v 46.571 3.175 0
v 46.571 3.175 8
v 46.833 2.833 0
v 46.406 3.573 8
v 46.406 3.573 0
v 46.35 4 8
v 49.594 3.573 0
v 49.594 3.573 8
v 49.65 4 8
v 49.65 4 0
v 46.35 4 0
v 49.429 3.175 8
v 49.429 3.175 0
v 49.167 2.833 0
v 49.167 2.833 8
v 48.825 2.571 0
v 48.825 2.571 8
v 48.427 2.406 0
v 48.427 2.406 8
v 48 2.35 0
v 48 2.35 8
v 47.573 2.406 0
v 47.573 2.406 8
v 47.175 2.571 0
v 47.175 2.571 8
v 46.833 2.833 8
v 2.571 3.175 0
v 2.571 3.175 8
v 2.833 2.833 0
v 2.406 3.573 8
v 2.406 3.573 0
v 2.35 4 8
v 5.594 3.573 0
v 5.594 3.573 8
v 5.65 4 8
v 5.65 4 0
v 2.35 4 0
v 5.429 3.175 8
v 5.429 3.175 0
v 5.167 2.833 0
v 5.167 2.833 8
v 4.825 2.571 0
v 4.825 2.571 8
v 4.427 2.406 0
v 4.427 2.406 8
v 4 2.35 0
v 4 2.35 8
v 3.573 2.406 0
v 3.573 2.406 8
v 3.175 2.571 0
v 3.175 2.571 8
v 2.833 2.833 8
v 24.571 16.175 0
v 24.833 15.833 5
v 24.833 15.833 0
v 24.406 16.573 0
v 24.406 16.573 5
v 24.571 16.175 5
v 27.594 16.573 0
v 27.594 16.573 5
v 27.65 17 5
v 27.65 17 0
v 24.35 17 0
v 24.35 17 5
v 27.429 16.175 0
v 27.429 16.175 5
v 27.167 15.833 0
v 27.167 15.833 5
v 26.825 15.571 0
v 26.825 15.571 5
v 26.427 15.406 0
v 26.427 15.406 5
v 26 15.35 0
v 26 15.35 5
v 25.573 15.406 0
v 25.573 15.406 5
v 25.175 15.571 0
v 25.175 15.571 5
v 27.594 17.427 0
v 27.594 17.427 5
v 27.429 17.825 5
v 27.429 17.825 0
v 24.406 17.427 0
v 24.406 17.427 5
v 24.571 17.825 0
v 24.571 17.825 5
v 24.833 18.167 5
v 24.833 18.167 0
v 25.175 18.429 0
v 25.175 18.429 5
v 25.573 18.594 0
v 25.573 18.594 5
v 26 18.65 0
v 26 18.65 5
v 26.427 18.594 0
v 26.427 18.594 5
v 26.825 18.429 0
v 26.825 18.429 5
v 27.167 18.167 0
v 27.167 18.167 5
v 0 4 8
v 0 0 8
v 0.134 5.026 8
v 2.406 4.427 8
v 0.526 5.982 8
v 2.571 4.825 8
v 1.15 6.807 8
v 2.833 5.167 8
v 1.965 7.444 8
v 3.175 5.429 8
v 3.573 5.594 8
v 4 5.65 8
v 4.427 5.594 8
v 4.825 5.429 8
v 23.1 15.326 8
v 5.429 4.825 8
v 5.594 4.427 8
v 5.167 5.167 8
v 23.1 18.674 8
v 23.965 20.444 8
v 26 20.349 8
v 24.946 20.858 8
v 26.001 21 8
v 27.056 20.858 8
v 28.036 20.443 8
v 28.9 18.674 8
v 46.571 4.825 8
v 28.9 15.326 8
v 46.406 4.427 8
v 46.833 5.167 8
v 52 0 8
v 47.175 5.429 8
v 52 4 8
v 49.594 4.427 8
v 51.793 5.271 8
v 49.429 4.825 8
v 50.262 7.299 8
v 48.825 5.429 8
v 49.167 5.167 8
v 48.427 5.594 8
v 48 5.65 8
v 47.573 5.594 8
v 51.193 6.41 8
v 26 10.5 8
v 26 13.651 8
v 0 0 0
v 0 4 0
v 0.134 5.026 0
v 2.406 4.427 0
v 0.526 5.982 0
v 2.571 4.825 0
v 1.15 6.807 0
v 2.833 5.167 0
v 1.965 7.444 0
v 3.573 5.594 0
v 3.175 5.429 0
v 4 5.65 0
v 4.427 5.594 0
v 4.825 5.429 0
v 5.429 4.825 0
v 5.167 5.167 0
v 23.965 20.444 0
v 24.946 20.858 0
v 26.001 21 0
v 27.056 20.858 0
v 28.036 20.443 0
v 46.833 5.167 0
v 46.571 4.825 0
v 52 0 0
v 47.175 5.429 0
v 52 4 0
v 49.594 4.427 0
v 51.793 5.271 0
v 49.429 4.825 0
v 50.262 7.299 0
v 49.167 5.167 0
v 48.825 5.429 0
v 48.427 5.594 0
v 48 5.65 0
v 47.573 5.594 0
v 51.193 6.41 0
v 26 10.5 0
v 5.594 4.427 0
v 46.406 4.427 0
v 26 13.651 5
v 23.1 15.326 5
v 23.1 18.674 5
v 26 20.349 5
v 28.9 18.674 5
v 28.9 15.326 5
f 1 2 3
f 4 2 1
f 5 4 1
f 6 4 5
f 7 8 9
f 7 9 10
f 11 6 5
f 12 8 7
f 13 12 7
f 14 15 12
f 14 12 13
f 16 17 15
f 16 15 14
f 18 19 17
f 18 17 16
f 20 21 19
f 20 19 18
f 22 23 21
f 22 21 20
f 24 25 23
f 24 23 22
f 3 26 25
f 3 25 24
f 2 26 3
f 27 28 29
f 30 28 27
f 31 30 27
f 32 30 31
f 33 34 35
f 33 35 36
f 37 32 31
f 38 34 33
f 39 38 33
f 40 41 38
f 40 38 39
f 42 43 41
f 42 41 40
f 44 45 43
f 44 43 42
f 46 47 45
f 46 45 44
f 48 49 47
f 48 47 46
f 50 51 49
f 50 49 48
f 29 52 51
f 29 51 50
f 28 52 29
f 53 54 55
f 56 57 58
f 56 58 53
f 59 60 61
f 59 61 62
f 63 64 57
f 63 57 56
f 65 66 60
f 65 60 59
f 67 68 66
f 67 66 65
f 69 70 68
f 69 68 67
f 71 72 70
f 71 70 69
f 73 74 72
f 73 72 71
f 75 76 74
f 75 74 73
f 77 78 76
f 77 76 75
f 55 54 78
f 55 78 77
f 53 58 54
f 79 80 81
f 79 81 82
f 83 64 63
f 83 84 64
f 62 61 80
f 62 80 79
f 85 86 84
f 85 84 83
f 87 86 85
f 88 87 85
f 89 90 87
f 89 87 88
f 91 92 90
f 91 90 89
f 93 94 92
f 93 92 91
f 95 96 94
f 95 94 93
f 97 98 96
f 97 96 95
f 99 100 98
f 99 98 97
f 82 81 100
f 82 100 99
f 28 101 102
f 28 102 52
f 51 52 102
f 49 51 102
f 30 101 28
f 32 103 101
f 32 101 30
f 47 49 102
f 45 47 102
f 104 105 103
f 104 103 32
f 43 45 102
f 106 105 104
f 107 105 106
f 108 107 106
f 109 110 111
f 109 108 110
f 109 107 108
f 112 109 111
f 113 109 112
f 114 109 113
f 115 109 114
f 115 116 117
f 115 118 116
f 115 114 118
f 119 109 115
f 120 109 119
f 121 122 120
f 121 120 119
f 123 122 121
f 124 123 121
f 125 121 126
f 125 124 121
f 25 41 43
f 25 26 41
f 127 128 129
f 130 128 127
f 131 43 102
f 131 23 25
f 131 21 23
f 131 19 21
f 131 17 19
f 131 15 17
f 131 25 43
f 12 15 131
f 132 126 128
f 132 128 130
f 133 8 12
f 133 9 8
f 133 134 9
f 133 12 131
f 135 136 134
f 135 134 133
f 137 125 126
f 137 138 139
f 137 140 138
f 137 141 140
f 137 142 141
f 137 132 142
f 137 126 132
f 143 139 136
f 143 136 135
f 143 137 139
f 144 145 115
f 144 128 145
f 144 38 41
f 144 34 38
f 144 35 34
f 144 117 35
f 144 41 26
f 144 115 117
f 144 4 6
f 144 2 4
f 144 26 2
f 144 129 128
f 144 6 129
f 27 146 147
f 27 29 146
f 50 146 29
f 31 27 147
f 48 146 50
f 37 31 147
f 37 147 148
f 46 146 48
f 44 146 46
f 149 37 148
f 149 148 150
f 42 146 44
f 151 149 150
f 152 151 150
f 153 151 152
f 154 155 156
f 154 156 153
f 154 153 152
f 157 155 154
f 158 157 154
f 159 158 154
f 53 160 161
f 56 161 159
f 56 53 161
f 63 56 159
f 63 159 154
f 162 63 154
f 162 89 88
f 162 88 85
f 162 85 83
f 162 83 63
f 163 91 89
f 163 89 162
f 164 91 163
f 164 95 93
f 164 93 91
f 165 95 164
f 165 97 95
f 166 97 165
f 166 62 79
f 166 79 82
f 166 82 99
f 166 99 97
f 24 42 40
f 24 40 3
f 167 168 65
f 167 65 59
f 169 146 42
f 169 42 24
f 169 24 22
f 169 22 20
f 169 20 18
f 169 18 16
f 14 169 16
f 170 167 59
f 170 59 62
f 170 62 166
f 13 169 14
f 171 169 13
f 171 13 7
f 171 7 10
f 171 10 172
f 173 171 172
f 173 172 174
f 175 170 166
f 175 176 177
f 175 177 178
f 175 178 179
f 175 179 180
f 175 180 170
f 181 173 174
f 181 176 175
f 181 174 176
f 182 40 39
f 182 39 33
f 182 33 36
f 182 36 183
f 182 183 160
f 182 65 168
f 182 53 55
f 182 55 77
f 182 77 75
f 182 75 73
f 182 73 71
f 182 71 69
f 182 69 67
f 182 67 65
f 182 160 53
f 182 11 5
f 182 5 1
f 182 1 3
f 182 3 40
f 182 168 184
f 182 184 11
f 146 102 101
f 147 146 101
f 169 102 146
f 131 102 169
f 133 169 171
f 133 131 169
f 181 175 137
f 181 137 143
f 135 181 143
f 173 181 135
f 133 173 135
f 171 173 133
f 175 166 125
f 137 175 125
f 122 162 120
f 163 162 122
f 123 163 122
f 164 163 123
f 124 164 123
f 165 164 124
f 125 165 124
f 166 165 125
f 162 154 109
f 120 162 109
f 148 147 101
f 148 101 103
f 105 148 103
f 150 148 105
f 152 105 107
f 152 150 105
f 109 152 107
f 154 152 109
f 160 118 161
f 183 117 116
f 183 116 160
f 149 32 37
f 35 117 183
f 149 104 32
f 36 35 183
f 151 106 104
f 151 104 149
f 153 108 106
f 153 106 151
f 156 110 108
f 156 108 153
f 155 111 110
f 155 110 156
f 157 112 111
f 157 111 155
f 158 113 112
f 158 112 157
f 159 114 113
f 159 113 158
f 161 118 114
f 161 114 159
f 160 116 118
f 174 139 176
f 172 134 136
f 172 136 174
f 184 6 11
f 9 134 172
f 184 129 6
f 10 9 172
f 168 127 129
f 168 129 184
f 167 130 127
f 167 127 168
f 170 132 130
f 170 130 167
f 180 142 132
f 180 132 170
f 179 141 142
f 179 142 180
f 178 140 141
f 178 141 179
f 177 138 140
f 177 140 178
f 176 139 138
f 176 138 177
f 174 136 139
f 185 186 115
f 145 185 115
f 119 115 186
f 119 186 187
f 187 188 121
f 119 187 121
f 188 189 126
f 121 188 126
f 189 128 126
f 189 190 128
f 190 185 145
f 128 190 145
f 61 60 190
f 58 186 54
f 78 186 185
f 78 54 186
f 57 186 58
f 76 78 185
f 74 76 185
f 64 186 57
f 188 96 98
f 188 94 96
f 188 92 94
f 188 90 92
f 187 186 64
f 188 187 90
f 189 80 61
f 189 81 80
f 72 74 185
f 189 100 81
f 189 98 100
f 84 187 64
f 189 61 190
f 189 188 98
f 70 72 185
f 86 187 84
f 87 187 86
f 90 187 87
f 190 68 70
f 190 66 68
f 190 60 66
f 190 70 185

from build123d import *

# Parameters (mm, degrees)
SKETCH1_R           = 1.65
BOSS_EXTRUDE1_DEPTH = 8
CUT_EXTRUDE1_DEPTH  = 3


with BuildPart() as part:
    # Sketch1 → Boss-Extrude1 (new body)
    with BuildSketch(Plane.XY):
        with BuildLine():
            Line((0, 0), (52, 0))
            Line((52, 0), (52, 4))
            ThreePointArc((52, 4), (51.538809184, 5.864625849), (50.261585222, 7.29927754))
            Line((50.261585222, 7.29927754), (28.036121371, 20.442994302))
            ThreePointArc((28.036121371, 20.442994302), (26.00069939, 20.999999939), (23.965082751, 20.443706113))
            Line((23.965082751, 20.443706113), (1.965082751, 7.443706113))
            ThreePointArc((1.965082751, 7.443706113), (0.525833266, 5.982464502), (0, 4))
            Line((0, 4), (0, 0))
        make_face()
        with Locations((26, 17)):
            Circle(SKETCH1_R, mode=Mode.SUBTRACT)
        with Locations((4, 4)):
            Circle(SKETCH1_R, mode=Mode.SUBTRACT)
        with Locations((48, 4)):
            Circle(SKETCH1_R, mode=Mode.SUBTRACT)
    extrude(amount=BOSS_EXTRUDE1_DEPTH)

    # Sketch2 → Cut-Extrude1 (cut)
    with BuildSketch(Plane.XY.offset(8)):
        Polygon((26, 13.651368439), (28.9, 15.325684219), (28.9, 18.674315781), (26, 20.348631561), (23.1, 18.674315781), (23.1, 15.325684219), align=None)
    extrude(amount=-CUT_EXTRUDE1_DEPTH, mode=Mode.SUBTRACT)


solid = part.part
